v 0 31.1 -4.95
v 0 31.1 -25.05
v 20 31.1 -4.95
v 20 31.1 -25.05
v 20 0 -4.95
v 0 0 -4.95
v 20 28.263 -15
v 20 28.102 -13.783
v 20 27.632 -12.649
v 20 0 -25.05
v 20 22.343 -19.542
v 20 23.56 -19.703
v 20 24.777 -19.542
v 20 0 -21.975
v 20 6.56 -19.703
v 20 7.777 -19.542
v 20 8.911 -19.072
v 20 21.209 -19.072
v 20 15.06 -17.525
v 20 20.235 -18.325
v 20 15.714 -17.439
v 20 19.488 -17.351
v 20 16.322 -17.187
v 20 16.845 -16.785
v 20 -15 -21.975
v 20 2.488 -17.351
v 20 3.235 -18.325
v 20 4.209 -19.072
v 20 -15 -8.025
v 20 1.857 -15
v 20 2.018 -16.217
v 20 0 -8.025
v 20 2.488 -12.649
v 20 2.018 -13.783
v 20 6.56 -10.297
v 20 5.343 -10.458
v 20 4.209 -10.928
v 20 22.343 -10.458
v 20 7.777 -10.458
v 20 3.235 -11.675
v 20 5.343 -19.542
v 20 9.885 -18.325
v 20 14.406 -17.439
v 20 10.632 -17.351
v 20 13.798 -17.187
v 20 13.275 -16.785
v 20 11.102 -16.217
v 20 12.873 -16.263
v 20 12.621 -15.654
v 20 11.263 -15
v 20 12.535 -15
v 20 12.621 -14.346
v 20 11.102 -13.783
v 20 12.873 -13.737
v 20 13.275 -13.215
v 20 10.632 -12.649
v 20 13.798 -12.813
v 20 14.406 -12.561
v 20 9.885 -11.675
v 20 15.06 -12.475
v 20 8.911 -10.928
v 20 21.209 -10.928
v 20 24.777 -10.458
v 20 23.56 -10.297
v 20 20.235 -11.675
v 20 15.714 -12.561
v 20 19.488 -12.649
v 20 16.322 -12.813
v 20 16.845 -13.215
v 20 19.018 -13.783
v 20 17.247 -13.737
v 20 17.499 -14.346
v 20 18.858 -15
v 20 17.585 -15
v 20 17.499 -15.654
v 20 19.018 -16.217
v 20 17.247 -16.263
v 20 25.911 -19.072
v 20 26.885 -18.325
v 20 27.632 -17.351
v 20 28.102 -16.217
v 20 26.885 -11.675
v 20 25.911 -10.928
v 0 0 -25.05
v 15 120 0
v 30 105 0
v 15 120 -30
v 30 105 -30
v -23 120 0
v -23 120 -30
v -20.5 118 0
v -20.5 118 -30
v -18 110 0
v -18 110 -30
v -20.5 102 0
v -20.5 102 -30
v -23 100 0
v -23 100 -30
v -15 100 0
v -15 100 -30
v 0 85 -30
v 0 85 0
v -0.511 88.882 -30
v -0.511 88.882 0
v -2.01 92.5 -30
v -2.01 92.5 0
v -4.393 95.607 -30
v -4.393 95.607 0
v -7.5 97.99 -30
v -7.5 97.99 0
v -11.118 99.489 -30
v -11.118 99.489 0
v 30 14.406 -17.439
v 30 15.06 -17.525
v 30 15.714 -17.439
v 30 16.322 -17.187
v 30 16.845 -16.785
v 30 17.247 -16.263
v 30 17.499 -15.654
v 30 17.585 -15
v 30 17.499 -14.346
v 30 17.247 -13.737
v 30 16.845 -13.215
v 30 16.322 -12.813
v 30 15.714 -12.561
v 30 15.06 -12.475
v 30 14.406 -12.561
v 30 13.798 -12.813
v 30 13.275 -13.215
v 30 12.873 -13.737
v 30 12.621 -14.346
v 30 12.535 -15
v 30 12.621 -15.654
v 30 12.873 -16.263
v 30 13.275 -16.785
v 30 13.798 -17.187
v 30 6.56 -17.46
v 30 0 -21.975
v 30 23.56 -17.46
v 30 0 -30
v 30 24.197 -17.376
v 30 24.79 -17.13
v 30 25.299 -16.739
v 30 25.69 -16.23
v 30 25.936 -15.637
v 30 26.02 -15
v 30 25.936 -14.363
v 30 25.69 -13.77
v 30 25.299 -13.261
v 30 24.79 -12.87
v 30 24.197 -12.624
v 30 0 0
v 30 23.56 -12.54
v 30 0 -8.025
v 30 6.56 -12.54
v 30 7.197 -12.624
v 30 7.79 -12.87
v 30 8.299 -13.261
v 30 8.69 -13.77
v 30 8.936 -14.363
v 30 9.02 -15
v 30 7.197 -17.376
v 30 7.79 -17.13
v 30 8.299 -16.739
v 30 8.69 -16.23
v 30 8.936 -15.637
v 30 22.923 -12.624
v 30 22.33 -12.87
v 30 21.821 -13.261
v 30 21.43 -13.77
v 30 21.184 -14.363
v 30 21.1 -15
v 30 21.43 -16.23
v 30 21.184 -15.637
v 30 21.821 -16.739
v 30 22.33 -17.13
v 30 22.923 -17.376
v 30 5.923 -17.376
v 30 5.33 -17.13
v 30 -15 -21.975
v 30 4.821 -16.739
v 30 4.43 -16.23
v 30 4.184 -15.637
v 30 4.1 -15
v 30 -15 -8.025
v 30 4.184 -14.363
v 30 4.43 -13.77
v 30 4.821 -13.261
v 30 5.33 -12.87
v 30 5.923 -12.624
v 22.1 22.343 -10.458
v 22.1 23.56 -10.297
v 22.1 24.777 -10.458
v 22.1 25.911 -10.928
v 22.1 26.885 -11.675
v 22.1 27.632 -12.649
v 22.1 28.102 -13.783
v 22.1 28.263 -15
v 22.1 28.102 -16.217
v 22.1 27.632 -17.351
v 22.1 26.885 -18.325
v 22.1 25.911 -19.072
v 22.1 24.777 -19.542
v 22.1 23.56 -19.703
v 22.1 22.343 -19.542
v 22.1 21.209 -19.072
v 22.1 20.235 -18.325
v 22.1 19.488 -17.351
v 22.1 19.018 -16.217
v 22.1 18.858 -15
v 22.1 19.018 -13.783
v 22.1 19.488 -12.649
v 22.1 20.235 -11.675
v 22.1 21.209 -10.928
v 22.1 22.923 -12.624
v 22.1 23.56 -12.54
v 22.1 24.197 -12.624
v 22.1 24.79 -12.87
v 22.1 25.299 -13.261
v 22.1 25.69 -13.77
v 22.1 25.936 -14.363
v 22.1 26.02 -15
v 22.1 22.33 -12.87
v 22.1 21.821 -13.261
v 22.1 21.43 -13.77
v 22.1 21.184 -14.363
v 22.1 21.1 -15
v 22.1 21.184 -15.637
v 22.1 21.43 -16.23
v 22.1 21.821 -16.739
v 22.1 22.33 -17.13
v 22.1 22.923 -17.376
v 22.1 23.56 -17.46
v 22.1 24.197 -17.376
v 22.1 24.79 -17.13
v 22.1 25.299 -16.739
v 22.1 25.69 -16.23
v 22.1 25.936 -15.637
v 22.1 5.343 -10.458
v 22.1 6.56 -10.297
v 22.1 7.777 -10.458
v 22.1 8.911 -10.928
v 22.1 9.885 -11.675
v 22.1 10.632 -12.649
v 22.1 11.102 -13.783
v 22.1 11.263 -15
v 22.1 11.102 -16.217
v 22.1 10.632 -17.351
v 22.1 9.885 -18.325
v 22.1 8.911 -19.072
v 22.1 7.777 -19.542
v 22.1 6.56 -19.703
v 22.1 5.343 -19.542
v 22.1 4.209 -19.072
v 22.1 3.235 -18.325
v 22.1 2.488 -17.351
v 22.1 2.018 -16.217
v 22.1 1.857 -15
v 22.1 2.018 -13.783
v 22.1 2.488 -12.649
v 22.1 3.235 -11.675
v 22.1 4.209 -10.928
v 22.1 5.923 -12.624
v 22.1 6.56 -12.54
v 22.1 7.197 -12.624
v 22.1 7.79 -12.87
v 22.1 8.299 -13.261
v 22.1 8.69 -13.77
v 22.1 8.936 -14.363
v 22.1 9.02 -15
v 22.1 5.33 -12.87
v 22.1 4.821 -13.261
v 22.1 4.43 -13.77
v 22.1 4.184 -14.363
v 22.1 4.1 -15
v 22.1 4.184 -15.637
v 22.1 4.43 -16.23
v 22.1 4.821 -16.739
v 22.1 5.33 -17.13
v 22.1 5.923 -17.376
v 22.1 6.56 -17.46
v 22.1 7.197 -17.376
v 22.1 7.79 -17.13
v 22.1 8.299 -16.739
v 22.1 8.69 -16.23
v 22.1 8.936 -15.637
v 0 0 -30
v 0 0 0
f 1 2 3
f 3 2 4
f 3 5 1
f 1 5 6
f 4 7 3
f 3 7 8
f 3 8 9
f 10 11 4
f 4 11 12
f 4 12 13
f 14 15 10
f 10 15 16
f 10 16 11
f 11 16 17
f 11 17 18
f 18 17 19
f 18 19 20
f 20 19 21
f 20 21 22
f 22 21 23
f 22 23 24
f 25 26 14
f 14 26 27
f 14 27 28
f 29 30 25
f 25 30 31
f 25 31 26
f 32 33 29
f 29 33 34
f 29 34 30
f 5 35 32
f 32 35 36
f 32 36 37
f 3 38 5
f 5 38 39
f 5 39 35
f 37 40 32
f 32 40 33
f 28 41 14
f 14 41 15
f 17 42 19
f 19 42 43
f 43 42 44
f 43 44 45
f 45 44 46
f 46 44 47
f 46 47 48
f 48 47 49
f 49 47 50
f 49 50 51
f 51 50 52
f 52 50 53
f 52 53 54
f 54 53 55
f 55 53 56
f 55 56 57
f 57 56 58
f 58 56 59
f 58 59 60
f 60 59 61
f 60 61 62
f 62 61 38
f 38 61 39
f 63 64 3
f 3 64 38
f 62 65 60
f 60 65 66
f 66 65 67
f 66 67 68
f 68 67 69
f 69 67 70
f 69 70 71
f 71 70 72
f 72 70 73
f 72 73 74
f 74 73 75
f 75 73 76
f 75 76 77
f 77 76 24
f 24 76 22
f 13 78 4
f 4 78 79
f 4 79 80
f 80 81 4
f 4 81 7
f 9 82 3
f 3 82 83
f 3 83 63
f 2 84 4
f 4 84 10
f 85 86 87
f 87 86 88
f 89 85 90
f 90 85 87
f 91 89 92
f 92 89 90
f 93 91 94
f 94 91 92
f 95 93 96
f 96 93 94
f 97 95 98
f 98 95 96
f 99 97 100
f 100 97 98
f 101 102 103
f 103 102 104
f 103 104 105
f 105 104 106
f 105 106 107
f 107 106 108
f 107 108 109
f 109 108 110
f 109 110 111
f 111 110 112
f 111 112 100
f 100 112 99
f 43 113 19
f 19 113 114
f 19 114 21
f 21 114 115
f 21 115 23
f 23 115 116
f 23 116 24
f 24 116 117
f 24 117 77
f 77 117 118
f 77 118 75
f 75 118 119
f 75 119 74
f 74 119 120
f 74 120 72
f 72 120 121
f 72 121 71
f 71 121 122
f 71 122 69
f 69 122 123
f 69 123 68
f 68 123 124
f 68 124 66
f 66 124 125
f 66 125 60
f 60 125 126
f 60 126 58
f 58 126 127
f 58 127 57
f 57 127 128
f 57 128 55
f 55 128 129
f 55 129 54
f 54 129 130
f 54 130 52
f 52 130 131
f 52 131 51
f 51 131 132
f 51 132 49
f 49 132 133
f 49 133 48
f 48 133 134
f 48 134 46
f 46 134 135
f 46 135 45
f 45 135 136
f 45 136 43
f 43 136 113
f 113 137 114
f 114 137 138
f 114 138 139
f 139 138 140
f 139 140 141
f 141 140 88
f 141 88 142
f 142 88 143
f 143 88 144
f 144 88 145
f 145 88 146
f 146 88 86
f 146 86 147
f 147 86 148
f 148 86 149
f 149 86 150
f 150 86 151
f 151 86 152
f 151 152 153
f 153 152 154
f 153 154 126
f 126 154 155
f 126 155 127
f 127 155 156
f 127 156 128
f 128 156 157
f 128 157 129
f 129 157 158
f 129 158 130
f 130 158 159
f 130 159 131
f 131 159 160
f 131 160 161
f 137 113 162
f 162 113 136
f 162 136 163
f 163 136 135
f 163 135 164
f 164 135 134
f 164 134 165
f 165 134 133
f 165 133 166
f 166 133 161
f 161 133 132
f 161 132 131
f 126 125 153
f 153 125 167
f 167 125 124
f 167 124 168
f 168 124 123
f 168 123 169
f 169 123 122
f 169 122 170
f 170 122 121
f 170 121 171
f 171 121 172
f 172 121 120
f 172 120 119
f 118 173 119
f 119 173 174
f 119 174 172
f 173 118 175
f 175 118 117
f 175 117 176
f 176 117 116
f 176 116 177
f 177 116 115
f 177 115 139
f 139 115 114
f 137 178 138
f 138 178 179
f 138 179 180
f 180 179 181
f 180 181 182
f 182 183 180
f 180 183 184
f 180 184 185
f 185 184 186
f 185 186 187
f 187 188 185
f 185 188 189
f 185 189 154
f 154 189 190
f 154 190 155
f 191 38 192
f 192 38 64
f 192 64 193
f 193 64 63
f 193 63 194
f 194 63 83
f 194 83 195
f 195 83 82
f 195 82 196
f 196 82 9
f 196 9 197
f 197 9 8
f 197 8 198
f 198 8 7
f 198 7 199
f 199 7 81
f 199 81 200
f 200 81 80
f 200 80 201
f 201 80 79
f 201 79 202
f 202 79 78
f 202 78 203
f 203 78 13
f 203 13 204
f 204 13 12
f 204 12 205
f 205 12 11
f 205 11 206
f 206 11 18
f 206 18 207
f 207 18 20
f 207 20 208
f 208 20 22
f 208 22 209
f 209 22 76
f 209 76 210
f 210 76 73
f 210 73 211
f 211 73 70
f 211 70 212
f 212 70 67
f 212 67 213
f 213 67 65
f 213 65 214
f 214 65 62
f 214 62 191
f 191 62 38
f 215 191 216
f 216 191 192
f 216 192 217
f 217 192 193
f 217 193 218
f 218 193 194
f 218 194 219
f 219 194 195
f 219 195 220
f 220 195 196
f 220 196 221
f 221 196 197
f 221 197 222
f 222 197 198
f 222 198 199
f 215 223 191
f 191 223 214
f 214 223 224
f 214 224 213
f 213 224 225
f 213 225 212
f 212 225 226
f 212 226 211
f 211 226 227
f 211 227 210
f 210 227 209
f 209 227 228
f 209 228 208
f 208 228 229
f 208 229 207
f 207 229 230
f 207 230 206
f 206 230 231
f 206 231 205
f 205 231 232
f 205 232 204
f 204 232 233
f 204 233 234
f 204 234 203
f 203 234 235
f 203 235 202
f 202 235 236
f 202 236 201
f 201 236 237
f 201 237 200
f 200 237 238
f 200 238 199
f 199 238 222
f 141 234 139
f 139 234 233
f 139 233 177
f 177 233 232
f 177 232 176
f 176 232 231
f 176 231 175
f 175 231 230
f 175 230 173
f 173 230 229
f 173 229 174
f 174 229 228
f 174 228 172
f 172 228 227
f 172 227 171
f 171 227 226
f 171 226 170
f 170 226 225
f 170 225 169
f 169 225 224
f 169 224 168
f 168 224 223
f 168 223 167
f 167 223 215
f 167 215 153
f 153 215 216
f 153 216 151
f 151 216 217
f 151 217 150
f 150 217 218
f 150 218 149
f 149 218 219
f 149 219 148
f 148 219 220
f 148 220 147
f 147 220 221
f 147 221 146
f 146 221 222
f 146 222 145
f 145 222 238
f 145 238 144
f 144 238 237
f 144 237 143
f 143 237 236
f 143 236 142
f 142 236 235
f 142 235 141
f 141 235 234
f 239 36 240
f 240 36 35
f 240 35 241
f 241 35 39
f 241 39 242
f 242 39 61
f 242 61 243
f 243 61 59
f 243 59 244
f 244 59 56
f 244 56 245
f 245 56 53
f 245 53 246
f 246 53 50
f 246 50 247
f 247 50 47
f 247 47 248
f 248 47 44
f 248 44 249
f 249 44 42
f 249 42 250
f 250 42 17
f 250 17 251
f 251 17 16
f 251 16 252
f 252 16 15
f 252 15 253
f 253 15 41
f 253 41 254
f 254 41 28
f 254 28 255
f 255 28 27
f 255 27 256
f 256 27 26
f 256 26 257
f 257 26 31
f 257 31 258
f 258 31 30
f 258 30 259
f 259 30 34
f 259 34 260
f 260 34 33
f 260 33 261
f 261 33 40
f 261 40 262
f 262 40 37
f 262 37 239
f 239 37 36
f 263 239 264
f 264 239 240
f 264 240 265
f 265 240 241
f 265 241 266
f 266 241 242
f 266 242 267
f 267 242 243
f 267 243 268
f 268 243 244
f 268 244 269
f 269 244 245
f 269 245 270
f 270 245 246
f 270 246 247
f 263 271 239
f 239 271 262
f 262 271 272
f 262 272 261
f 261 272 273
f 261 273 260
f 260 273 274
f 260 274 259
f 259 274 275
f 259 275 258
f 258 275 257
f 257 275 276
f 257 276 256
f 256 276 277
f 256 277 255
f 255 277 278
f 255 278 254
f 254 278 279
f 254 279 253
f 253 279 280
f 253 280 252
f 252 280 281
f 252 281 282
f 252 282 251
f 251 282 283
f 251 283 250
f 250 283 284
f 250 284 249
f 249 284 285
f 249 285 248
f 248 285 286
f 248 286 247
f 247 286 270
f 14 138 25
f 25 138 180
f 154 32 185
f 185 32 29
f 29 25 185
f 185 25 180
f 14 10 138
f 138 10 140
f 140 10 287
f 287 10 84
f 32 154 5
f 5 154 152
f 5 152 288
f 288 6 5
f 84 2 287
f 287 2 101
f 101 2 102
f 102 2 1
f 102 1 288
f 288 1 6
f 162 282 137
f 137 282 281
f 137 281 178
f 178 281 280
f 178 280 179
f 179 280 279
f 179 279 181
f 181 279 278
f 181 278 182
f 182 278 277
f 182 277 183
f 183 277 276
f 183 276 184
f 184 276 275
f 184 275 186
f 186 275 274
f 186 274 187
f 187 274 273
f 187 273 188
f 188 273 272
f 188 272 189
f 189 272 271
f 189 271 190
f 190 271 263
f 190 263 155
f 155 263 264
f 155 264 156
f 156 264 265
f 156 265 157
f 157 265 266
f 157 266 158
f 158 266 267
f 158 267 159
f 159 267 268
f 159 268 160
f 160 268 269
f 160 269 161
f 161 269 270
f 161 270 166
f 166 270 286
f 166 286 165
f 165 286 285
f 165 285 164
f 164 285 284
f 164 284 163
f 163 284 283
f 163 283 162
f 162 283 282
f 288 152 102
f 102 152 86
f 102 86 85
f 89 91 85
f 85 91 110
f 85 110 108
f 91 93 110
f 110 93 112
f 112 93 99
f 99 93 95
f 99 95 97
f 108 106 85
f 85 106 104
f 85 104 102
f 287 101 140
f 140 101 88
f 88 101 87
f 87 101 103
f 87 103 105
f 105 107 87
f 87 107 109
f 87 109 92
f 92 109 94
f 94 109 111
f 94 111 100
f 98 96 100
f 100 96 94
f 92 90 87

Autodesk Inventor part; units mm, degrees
ref_plane "YZ Plane" through (0, 0, 0) normal (1, 0, 0) x (0, 1, 0)
ref_plane "XZ Plane" through (0, 0, 0) normal (0, 1, 0) x (-1, 0, 0)
ref_plane "XY Plane" through (0, 0, 0) normal (0, 0, 1) x (1, 0, 0)
sketch "Sketch1" plane through (0, 0, 0) normal (0, 0, 1) x (1, 0, 0)
  line L0 (0, 0) -> (25, 0)
  line L1 (25, 0) -> (25, 40)
  line L2 (25, 40) -> (0, 40)
  line L3 (0, 40) -> (0, 0)
  dimension "d1" = 25
  dimension "d2" = 40
  dimension "d3" = 25
extrude "Extrusion1" add sketch "Sketch1" against normal blind 30
sketch "Sketch2" plane through (25, 0, 0) normal (1, 0, 0) x (0, 0, -1)
  line L0 (0, 0) -> (30, 0) projected
  circle A0 centre (15, 6.56) radius 2.46
extrude "Extrusion2" cut sketch "Sketch2" against normal blind 30
sketch "Sketch3" plane through (0, 0, 0) normal (-1, 0, 0) x (0, 0, 1)
  line L0 (0, 0) -> (-30, 0) projected
  line L1 (-25.05, 0) -> (-4.95, 0)
  line L2 (-4.95, 0) -> (-4.95, 33.12)
  line L3 (-4.95, 33.12) -> (-25.05, 33.12)
  line L4 (-25.05, 33.12) -> (-25.05, 0)
  dimension "d11" = 20.1
extrude "Extrusion3" cut sketch "Sketch3" against normal blind 20
sketch "Sketch4" plane through (0, 0, 0) normal (0, -1, 0) x (1, 0, 0)
  line L0 (20, -4.95) -> (20, -25.05) projected
  line L1 (20, -15) -> (25, -15)
  line L2 (25, 0) -> (25, -30) projected
  line L3 (20, -8.025) -> (25, -8.025)
  line L4 (25, -8.025) -> (25, -21.975)
  line L5 (25, -21.975) -> (20, -21.975)
  line L6 (20, -21.975) -> (20, -8.025)
  line L7 (20, -8.025) -> (25, -21.975) construction
  line L8 (25, -8.025) -> (20, -21.975) construction
  line L9 (25, -12.54) -> (25, -17.46) projected
  point P0 (0, 0)
  point P1 (22.5, -15)
  dimension "d14" = 13.95
extrude "Extrusion4" add sketch "Sketch4" along normal blind 15
sketch "Sketch5" plane through (20, 0, 0) normal (-1, 0, 0) x (0, 0, 1)
  circle A0 centre (-15, 6.56) radius 2.46 projected
  circle A1 centre (-15, 6.56) radius 4.7025
  circle A2 centre (-15, 6.56) radius 2.46 projected
  circle A3 centre (-15, 6.56) radius 2.46
  point P0 (0, 0)
  dimension "d17" = 9.405
extrude "Extrusion5" cut sketch "Sketch5" against normal blind 2.1
sketch "Sketch6" plane through (25, 0, 0) normal (1, 0, 0) x (0, 0, -1)
  circle A0 centre (15, 6.56) radius 4.7025 projected
  line L0 (15, 6.56) -> (15, 23.56)
  circle A1 centre (15, 23.56) radius 2.46
  point P0 (0, 0)
  dimension "d20" = 17
  dimension "d21" = 4.92
extrude "Extrusion6" cut sketch "Sketch6" against normal blind 10 contours A1
sketch "Sketch7" plane through (20, 0, 0) normal (-1, 0, 0) x (0, 0, 1)
  circle A0 centre (-15, 23.56) radius 2.46 projected
  circle A1 centre (-15, 23.56) radius 4.7025
  point P0 (0, 0)
  dimension "d24" = 9.405
extrude "Extrusion7" cut sketch "Sketch7" against normal blind 2.1
sketch "Sketch9" plane through (25, 0, 0) normal (1, 0, 0) x (0, 0, -1)
  circle A0 centre (15, 6.56) radius 2.46 projected
  circle A1 centre (15, 6.56) radius 2.46
  circle A2 centre (15, 23.56) radius 2.46 projected
  circle A3 centre (15, 23.56) radius 2.46
  line L0 (30, 40) -> (30, 0) projected
  line L1 (30, 0) -> (30, 40)
  line L2 (30, 40) -> (0, 40)
  line L3 (0, 40) -> (0, 0)
  line L4 (0, 0) -> (8.025, 0) projected
  line L5 (21.975, 0) -> (21.975, -15)
  line L6 (21.975, -15) -> (8.025, -15)
  line L7 (8.025, -15) -> (8.025, 0)
  line L8 (0, 0) -> (8.025, 0)
  line L9 (21.975, 0) -> (30, 0)
extrude "Extrusion8" add sketch "Sketch9" along normal blind 5
sketch "Sketch10" plane through (0, 40, 0) normal (0, 1, 0) x (1, 0, 0)
  line L0 (0, 30) -> (30, 30) projected
  line L1 (30, 0) -> (0, 0) projected
  line L2 (0, 30) -> (30, 30)
  line L3 (30, 30) -> (30, 0)
  line L4 (30, 0) -> (0, 0)
  line L5 (0, 0) -> (0, 30)
extrude "Extrusion9" add sketch "Sketch10" along normal blind 30
sketch "Sketch12" plane through (30, 0, 0) normal (1, 0, 0) x (0, 0, -1)
  circle A0 centre (15, 6.56) radius 2.46 projected
  line L0 (15, 6.56) -> (15, 15.06)
  circle A1 centre (15, 15.06) radius 2.525
  point P0 (0, 0)
  dimension "d31" = 8.5
  dimension "d33" = 5.05
extrude "Extrusion10" cut sketch "Sketch12" against normal blind 30 contours A1
sketch "Sketch14" plane through (0, 0, 0) normal (0, 0, 1) x (1, 0, 0)
  line L0 (30, 70) -> (0, 70) projected
  line L1 (0, 70) -> (0, 85)
  line L2 (-15, 100) -> (-23, 100)
  line L3 (30, 0) -> (30, 70) projected
  line L4 (30, 100) -> (30, 70)
  arc A0 (0, 85) -> (-15, 100) centre (-15, 85) ccw
  line L5 (-23, 120) -> (15, 120)
  line L6 (-20.5, 118) -> (-18, 110)
  line L7 (-20.5, 118) -> (-23, 120)
  line L8 (-20.5, 102) -> (-18, 110)
  line L9 (-20.5, 102) -> (-23, 100)
  line L10 (30, 105) -> (15, 120)
  line L11 (30, 105) -> (30, 100)
  point P0 (0, 0)
  point P1 (0, 100)
  dimension "d47" = 30
  dimension "d54" = 15
  dimension "d60" = 20
extrude "Extrusion12" add sketch "Sketch14" against normal blind 30
sketch "Sketch15" plane through (0, 0, -25.05) normal (-1, 0, 0) x (0, 0, 1)
  line L0 (0, 33.12) -> (20.1, 33.12) projected
  line L1 (20.1, 33.12) -> (20.1, 0) projected
  line L2 (0, 33.12) -> (20.1, 33.12)
  line L3 (20.1, 33.12) -> (20.1, 31.1)
  line L4 (20.1, 31.1) -> (0, 31.1)
  line L5 (0, 31.1) -> (0, 33.12)
  point P0 (25.05, 0)
  dimension "d57" = 2.02
extrude "Extrusion13" add sketch "Sketch15" against normal blind 20
properties part number "16mm_x_30mm"
